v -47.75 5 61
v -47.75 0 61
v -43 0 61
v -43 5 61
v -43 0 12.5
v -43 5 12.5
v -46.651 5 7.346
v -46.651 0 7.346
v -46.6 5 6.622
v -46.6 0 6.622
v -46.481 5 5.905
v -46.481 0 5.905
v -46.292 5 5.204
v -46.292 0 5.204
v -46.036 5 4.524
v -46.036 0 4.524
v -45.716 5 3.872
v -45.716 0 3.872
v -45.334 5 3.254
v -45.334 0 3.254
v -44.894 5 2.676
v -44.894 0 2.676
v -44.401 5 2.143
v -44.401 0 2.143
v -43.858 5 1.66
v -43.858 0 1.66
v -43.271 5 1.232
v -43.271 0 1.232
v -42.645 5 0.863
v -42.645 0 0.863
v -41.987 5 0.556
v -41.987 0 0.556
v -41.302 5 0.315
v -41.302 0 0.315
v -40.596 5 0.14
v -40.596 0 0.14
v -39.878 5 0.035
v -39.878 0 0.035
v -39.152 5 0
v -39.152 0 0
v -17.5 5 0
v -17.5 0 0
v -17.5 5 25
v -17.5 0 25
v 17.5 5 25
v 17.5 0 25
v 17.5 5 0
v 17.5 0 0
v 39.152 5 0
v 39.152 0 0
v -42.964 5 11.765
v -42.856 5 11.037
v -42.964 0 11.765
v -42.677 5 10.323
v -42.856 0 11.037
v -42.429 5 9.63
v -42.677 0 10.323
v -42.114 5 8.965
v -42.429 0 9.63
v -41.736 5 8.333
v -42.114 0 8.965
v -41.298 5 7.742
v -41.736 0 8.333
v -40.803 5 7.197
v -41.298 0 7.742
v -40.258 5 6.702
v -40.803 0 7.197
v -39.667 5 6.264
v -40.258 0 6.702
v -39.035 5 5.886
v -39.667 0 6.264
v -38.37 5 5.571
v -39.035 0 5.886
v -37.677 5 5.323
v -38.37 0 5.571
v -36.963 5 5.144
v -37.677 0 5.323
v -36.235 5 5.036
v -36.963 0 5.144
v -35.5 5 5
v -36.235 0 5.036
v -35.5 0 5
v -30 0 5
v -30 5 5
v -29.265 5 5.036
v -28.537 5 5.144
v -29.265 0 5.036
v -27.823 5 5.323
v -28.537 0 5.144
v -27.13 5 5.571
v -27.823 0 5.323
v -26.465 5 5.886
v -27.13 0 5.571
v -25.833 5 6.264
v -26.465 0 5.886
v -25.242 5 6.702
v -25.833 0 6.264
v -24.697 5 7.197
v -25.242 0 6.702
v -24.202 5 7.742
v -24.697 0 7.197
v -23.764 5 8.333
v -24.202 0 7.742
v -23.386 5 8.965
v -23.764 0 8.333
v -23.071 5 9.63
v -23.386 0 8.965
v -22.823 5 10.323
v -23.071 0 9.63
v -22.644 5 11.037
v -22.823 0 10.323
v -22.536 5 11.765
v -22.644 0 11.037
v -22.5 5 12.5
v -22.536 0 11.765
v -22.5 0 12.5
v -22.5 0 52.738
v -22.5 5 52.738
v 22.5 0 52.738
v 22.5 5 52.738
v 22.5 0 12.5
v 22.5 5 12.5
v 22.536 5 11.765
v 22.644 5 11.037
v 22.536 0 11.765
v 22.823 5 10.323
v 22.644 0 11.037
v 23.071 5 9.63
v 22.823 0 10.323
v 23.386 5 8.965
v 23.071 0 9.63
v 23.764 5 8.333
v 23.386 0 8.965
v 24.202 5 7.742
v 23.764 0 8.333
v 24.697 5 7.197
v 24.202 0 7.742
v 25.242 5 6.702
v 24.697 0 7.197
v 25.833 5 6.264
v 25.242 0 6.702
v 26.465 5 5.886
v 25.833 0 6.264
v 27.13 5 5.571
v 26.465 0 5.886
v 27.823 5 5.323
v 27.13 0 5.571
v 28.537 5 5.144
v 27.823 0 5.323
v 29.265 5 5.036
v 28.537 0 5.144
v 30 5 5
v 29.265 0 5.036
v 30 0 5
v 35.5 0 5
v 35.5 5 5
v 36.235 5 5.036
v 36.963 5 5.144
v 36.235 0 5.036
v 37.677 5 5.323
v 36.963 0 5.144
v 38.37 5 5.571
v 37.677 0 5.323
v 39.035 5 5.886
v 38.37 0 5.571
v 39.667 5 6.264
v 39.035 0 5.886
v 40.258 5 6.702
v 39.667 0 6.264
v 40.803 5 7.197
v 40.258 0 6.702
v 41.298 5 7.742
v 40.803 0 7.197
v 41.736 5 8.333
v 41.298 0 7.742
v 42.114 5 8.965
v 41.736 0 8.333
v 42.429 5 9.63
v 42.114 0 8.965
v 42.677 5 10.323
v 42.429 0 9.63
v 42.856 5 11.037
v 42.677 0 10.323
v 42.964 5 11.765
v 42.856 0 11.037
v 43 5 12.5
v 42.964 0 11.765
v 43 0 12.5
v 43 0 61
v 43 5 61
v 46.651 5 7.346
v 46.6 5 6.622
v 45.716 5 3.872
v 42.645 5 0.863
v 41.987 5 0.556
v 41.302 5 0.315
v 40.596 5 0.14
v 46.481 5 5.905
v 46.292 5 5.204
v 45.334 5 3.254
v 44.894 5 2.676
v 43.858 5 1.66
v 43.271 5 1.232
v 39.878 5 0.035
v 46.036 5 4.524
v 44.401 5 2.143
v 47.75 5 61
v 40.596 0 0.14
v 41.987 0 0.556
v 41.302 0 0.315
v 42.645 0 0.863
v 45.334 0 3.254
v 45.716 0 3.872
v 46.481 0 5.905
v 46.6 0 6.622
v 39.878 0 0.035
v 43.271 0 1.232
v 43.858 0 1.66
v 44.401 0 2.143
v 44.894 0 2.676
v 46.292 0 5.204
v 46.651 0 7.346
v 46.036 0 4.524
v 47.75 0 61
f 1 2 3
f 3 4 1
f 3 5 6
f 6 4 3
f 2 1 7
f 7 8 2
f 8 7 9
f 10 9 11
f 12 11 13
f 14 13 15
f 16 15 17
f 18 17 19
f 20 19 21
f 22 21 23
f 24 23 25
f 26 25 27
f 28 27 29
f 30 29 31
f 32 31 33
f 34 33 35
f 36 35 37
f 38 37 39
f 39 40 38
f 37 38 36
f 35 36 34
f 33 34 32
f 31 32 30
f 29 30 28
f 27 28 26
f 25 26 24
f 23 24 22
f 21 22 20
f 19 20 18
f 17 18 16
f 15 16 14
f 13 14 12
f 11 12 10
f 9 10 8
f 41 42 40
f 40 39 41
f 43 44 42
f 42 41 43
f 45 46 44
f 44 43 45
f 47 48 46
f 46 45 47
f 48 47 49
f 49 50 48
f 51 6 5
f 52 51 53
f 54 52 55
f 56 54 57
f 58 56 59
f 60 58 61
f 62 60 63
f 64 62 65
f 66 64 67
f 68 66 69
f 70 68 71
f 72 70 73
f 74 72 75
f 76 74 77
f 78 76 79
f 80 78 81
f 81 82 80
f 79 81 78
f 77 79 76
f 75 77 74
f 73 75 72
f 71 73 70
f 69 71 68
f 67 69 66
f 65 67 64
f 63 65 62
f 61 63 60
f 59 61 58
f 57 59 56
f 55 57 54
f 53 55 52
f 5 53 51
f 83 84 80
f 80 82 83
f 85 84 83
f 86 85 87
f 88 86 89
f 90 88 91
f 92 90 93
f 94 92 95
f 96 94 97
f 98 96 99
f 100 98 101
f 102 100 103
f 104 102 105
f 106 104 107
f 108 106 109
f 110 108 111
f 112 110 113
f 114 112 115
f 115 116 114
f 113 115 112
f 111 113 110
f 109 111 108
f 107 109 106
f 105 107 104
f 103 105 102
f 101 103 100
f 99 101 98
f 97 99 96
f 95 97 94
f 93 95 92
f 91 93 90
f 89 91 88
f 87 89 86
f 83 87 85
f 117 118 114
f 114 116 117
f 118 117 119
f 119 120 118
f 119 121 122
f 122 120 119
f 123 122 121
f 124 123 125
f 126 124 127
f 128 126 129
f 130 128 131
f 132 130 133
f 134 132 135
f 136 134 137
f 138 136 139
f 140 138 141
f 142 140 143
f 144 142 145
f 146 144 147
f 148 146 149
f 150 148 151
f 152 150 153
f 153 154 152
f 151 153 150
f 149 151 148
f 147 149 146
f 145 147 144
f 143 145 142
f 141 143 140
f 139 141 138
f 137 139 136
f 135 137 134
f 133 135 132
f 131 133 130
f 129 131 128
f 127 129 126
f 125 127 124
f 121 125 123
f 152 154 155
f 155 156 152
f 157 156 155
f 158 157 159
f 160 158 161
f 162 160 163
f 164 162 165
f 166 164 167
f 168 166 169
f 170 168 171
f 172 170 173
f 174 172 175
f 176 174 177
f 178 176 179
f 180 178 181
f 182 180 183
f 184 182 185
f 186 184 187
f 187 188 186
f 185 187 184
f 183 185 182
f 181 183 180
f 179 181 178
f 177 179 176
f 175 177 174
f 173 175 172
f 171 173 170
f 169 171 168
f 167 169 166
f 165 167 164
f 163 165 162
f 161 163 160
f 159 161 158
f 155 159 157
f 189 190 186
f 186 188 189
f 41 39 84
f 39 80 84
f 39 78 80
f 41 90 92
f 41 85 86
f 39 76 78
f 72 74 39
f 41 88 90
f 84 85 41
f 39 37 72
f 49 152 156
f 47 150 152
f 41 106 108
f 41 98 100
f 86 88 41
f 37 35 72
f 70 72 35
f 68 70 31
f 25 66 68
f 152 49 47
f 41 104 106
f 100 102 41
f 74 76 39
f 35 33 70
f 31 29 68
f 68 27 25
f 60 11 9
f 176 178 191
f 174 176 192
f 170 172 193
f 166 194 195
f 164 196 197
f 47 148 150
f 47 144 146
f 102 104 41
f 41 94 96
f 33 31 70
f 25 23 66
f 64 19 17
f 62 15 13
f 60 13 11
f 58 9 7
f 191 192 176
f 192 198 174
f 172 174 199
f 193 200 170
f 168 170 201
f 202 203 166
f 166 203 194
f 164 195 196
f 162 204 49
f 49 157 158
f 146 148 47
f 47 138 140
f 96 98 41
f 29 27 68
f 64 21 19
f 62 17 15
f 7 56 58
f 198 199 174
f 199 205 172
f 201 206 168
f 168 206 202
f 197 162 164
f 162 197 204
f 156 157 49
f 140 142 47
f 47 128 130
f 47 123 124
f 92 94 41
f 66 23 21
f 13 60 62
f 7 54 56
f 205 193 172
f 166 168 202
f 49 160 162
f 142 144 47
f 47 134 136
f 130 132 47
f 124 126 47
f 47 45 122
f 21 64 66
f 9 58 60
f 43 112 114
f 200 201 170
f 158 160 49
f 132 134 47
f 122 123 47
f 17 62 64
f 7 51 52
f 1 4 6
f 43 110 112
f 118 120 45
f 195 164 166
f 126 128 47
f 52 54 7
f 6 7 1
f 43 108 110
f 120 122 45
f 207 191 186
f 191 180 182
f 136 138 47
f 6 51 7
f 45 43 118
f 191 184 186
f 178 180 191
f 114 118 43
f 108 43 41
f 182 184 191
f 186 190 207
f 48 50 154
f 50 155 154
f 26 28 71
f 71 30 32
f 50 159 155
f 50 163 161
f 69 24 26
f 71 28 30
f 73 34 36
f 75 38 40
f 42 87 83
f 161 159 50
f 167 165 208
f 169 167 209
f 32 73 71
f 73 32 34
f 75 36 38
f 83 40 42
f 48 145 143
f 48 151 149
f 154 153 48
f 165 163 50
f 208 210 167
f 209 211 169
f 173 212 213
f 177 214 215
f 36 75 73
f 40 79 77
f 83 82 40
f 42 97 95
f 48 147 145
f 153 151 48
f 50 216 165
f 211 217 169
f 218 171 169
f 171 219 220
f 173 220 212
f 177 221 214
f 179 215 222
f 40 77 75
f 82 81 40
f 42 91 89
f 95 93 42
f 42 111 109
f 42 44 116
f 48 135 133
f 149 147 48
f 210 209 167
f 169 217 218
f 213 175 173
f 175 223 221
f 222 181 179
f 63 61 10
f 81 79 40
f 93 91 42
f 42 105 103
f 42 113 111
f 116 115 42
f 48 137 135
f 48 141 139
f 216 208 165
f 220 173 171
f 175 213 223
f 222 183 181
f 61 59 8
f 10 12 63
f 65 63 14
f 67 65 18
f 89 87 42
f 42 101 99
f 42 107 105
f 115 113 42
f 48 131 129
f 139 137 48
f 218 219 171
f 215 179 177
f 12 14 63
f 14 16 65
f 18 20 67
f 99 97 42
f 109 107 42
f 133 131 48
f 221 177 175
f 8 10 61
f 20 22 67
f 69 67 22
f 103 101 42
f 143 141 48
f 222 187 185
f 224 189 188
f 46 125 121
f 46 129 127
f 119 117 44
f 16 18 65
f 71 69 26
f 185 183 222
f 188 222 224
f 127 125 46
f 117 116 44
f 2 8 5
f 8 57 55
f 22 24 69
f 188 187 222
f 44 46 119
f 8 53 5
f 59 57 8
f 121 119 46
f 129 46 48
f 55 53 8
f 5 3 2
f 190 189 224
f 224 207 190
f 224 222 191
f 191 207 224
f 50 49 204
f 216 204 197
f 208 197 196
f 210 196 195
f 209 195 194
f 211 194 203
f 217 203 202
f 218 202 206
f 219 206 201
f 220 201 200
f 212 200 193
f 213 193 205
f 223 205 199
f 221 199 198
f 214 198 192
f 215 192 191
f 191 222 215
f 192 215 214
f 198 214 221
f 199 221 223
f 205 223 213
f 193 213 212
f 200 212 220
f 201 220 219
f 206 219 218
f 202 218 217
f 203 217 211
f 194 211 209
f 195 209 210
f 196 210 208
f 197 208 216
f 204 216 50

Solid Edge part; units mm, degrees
sketch "Sketch1" plane through (0, 0, 0) normal (0, -1, 0) x (1, 0, 0)
  line L0 (-43, 61) -> (-43, 5)
  line L1 (-22.5, 5) -> (-43, 5)
  line L2 (-22.5, 52.7379) -> (-22.5, 5)
  line L3 (22.5, 52.7379) -> (-22.5, 52.7379)
  line L4 (22.5, 5) -> (22.5, 52.7379)
  line L5 (43, 5) -> (22.5, 5)
  line L6 (43, 61) -> (43, 5)
  line L7 (47.75, 61) -> (43, 61)
  line L8 (46.5, 0) -> (47.75, 61)
  line L9 (17.5, 0) -> (46.5, 0)
  line L10 (17.5, 25) -> (17.5, 0)
  line L11 (-17.5, 25) -> (17.5, 25)
  line L12 (-17.5, 0) -> (-17.5, 25)
  line L13 (-46.5, 0) -> (-17.5, 0)
  line L14 (-46.5, 0) -> (-47.75, 61)
  line L15 (-47.75, 61) -> (-43, 61)
extrude "Protrusion1" add sketch "Sketch1" against normal blind 5
fillet "Round_1" radius 7.5 6 edges at (-46.5, 2.5, 0) (46.5, 2.5, 0) (43, 2.5, 5) (-43, 2.5, 5) (-22.5, 2.5, 5) (22.5, 2.5, 5)
